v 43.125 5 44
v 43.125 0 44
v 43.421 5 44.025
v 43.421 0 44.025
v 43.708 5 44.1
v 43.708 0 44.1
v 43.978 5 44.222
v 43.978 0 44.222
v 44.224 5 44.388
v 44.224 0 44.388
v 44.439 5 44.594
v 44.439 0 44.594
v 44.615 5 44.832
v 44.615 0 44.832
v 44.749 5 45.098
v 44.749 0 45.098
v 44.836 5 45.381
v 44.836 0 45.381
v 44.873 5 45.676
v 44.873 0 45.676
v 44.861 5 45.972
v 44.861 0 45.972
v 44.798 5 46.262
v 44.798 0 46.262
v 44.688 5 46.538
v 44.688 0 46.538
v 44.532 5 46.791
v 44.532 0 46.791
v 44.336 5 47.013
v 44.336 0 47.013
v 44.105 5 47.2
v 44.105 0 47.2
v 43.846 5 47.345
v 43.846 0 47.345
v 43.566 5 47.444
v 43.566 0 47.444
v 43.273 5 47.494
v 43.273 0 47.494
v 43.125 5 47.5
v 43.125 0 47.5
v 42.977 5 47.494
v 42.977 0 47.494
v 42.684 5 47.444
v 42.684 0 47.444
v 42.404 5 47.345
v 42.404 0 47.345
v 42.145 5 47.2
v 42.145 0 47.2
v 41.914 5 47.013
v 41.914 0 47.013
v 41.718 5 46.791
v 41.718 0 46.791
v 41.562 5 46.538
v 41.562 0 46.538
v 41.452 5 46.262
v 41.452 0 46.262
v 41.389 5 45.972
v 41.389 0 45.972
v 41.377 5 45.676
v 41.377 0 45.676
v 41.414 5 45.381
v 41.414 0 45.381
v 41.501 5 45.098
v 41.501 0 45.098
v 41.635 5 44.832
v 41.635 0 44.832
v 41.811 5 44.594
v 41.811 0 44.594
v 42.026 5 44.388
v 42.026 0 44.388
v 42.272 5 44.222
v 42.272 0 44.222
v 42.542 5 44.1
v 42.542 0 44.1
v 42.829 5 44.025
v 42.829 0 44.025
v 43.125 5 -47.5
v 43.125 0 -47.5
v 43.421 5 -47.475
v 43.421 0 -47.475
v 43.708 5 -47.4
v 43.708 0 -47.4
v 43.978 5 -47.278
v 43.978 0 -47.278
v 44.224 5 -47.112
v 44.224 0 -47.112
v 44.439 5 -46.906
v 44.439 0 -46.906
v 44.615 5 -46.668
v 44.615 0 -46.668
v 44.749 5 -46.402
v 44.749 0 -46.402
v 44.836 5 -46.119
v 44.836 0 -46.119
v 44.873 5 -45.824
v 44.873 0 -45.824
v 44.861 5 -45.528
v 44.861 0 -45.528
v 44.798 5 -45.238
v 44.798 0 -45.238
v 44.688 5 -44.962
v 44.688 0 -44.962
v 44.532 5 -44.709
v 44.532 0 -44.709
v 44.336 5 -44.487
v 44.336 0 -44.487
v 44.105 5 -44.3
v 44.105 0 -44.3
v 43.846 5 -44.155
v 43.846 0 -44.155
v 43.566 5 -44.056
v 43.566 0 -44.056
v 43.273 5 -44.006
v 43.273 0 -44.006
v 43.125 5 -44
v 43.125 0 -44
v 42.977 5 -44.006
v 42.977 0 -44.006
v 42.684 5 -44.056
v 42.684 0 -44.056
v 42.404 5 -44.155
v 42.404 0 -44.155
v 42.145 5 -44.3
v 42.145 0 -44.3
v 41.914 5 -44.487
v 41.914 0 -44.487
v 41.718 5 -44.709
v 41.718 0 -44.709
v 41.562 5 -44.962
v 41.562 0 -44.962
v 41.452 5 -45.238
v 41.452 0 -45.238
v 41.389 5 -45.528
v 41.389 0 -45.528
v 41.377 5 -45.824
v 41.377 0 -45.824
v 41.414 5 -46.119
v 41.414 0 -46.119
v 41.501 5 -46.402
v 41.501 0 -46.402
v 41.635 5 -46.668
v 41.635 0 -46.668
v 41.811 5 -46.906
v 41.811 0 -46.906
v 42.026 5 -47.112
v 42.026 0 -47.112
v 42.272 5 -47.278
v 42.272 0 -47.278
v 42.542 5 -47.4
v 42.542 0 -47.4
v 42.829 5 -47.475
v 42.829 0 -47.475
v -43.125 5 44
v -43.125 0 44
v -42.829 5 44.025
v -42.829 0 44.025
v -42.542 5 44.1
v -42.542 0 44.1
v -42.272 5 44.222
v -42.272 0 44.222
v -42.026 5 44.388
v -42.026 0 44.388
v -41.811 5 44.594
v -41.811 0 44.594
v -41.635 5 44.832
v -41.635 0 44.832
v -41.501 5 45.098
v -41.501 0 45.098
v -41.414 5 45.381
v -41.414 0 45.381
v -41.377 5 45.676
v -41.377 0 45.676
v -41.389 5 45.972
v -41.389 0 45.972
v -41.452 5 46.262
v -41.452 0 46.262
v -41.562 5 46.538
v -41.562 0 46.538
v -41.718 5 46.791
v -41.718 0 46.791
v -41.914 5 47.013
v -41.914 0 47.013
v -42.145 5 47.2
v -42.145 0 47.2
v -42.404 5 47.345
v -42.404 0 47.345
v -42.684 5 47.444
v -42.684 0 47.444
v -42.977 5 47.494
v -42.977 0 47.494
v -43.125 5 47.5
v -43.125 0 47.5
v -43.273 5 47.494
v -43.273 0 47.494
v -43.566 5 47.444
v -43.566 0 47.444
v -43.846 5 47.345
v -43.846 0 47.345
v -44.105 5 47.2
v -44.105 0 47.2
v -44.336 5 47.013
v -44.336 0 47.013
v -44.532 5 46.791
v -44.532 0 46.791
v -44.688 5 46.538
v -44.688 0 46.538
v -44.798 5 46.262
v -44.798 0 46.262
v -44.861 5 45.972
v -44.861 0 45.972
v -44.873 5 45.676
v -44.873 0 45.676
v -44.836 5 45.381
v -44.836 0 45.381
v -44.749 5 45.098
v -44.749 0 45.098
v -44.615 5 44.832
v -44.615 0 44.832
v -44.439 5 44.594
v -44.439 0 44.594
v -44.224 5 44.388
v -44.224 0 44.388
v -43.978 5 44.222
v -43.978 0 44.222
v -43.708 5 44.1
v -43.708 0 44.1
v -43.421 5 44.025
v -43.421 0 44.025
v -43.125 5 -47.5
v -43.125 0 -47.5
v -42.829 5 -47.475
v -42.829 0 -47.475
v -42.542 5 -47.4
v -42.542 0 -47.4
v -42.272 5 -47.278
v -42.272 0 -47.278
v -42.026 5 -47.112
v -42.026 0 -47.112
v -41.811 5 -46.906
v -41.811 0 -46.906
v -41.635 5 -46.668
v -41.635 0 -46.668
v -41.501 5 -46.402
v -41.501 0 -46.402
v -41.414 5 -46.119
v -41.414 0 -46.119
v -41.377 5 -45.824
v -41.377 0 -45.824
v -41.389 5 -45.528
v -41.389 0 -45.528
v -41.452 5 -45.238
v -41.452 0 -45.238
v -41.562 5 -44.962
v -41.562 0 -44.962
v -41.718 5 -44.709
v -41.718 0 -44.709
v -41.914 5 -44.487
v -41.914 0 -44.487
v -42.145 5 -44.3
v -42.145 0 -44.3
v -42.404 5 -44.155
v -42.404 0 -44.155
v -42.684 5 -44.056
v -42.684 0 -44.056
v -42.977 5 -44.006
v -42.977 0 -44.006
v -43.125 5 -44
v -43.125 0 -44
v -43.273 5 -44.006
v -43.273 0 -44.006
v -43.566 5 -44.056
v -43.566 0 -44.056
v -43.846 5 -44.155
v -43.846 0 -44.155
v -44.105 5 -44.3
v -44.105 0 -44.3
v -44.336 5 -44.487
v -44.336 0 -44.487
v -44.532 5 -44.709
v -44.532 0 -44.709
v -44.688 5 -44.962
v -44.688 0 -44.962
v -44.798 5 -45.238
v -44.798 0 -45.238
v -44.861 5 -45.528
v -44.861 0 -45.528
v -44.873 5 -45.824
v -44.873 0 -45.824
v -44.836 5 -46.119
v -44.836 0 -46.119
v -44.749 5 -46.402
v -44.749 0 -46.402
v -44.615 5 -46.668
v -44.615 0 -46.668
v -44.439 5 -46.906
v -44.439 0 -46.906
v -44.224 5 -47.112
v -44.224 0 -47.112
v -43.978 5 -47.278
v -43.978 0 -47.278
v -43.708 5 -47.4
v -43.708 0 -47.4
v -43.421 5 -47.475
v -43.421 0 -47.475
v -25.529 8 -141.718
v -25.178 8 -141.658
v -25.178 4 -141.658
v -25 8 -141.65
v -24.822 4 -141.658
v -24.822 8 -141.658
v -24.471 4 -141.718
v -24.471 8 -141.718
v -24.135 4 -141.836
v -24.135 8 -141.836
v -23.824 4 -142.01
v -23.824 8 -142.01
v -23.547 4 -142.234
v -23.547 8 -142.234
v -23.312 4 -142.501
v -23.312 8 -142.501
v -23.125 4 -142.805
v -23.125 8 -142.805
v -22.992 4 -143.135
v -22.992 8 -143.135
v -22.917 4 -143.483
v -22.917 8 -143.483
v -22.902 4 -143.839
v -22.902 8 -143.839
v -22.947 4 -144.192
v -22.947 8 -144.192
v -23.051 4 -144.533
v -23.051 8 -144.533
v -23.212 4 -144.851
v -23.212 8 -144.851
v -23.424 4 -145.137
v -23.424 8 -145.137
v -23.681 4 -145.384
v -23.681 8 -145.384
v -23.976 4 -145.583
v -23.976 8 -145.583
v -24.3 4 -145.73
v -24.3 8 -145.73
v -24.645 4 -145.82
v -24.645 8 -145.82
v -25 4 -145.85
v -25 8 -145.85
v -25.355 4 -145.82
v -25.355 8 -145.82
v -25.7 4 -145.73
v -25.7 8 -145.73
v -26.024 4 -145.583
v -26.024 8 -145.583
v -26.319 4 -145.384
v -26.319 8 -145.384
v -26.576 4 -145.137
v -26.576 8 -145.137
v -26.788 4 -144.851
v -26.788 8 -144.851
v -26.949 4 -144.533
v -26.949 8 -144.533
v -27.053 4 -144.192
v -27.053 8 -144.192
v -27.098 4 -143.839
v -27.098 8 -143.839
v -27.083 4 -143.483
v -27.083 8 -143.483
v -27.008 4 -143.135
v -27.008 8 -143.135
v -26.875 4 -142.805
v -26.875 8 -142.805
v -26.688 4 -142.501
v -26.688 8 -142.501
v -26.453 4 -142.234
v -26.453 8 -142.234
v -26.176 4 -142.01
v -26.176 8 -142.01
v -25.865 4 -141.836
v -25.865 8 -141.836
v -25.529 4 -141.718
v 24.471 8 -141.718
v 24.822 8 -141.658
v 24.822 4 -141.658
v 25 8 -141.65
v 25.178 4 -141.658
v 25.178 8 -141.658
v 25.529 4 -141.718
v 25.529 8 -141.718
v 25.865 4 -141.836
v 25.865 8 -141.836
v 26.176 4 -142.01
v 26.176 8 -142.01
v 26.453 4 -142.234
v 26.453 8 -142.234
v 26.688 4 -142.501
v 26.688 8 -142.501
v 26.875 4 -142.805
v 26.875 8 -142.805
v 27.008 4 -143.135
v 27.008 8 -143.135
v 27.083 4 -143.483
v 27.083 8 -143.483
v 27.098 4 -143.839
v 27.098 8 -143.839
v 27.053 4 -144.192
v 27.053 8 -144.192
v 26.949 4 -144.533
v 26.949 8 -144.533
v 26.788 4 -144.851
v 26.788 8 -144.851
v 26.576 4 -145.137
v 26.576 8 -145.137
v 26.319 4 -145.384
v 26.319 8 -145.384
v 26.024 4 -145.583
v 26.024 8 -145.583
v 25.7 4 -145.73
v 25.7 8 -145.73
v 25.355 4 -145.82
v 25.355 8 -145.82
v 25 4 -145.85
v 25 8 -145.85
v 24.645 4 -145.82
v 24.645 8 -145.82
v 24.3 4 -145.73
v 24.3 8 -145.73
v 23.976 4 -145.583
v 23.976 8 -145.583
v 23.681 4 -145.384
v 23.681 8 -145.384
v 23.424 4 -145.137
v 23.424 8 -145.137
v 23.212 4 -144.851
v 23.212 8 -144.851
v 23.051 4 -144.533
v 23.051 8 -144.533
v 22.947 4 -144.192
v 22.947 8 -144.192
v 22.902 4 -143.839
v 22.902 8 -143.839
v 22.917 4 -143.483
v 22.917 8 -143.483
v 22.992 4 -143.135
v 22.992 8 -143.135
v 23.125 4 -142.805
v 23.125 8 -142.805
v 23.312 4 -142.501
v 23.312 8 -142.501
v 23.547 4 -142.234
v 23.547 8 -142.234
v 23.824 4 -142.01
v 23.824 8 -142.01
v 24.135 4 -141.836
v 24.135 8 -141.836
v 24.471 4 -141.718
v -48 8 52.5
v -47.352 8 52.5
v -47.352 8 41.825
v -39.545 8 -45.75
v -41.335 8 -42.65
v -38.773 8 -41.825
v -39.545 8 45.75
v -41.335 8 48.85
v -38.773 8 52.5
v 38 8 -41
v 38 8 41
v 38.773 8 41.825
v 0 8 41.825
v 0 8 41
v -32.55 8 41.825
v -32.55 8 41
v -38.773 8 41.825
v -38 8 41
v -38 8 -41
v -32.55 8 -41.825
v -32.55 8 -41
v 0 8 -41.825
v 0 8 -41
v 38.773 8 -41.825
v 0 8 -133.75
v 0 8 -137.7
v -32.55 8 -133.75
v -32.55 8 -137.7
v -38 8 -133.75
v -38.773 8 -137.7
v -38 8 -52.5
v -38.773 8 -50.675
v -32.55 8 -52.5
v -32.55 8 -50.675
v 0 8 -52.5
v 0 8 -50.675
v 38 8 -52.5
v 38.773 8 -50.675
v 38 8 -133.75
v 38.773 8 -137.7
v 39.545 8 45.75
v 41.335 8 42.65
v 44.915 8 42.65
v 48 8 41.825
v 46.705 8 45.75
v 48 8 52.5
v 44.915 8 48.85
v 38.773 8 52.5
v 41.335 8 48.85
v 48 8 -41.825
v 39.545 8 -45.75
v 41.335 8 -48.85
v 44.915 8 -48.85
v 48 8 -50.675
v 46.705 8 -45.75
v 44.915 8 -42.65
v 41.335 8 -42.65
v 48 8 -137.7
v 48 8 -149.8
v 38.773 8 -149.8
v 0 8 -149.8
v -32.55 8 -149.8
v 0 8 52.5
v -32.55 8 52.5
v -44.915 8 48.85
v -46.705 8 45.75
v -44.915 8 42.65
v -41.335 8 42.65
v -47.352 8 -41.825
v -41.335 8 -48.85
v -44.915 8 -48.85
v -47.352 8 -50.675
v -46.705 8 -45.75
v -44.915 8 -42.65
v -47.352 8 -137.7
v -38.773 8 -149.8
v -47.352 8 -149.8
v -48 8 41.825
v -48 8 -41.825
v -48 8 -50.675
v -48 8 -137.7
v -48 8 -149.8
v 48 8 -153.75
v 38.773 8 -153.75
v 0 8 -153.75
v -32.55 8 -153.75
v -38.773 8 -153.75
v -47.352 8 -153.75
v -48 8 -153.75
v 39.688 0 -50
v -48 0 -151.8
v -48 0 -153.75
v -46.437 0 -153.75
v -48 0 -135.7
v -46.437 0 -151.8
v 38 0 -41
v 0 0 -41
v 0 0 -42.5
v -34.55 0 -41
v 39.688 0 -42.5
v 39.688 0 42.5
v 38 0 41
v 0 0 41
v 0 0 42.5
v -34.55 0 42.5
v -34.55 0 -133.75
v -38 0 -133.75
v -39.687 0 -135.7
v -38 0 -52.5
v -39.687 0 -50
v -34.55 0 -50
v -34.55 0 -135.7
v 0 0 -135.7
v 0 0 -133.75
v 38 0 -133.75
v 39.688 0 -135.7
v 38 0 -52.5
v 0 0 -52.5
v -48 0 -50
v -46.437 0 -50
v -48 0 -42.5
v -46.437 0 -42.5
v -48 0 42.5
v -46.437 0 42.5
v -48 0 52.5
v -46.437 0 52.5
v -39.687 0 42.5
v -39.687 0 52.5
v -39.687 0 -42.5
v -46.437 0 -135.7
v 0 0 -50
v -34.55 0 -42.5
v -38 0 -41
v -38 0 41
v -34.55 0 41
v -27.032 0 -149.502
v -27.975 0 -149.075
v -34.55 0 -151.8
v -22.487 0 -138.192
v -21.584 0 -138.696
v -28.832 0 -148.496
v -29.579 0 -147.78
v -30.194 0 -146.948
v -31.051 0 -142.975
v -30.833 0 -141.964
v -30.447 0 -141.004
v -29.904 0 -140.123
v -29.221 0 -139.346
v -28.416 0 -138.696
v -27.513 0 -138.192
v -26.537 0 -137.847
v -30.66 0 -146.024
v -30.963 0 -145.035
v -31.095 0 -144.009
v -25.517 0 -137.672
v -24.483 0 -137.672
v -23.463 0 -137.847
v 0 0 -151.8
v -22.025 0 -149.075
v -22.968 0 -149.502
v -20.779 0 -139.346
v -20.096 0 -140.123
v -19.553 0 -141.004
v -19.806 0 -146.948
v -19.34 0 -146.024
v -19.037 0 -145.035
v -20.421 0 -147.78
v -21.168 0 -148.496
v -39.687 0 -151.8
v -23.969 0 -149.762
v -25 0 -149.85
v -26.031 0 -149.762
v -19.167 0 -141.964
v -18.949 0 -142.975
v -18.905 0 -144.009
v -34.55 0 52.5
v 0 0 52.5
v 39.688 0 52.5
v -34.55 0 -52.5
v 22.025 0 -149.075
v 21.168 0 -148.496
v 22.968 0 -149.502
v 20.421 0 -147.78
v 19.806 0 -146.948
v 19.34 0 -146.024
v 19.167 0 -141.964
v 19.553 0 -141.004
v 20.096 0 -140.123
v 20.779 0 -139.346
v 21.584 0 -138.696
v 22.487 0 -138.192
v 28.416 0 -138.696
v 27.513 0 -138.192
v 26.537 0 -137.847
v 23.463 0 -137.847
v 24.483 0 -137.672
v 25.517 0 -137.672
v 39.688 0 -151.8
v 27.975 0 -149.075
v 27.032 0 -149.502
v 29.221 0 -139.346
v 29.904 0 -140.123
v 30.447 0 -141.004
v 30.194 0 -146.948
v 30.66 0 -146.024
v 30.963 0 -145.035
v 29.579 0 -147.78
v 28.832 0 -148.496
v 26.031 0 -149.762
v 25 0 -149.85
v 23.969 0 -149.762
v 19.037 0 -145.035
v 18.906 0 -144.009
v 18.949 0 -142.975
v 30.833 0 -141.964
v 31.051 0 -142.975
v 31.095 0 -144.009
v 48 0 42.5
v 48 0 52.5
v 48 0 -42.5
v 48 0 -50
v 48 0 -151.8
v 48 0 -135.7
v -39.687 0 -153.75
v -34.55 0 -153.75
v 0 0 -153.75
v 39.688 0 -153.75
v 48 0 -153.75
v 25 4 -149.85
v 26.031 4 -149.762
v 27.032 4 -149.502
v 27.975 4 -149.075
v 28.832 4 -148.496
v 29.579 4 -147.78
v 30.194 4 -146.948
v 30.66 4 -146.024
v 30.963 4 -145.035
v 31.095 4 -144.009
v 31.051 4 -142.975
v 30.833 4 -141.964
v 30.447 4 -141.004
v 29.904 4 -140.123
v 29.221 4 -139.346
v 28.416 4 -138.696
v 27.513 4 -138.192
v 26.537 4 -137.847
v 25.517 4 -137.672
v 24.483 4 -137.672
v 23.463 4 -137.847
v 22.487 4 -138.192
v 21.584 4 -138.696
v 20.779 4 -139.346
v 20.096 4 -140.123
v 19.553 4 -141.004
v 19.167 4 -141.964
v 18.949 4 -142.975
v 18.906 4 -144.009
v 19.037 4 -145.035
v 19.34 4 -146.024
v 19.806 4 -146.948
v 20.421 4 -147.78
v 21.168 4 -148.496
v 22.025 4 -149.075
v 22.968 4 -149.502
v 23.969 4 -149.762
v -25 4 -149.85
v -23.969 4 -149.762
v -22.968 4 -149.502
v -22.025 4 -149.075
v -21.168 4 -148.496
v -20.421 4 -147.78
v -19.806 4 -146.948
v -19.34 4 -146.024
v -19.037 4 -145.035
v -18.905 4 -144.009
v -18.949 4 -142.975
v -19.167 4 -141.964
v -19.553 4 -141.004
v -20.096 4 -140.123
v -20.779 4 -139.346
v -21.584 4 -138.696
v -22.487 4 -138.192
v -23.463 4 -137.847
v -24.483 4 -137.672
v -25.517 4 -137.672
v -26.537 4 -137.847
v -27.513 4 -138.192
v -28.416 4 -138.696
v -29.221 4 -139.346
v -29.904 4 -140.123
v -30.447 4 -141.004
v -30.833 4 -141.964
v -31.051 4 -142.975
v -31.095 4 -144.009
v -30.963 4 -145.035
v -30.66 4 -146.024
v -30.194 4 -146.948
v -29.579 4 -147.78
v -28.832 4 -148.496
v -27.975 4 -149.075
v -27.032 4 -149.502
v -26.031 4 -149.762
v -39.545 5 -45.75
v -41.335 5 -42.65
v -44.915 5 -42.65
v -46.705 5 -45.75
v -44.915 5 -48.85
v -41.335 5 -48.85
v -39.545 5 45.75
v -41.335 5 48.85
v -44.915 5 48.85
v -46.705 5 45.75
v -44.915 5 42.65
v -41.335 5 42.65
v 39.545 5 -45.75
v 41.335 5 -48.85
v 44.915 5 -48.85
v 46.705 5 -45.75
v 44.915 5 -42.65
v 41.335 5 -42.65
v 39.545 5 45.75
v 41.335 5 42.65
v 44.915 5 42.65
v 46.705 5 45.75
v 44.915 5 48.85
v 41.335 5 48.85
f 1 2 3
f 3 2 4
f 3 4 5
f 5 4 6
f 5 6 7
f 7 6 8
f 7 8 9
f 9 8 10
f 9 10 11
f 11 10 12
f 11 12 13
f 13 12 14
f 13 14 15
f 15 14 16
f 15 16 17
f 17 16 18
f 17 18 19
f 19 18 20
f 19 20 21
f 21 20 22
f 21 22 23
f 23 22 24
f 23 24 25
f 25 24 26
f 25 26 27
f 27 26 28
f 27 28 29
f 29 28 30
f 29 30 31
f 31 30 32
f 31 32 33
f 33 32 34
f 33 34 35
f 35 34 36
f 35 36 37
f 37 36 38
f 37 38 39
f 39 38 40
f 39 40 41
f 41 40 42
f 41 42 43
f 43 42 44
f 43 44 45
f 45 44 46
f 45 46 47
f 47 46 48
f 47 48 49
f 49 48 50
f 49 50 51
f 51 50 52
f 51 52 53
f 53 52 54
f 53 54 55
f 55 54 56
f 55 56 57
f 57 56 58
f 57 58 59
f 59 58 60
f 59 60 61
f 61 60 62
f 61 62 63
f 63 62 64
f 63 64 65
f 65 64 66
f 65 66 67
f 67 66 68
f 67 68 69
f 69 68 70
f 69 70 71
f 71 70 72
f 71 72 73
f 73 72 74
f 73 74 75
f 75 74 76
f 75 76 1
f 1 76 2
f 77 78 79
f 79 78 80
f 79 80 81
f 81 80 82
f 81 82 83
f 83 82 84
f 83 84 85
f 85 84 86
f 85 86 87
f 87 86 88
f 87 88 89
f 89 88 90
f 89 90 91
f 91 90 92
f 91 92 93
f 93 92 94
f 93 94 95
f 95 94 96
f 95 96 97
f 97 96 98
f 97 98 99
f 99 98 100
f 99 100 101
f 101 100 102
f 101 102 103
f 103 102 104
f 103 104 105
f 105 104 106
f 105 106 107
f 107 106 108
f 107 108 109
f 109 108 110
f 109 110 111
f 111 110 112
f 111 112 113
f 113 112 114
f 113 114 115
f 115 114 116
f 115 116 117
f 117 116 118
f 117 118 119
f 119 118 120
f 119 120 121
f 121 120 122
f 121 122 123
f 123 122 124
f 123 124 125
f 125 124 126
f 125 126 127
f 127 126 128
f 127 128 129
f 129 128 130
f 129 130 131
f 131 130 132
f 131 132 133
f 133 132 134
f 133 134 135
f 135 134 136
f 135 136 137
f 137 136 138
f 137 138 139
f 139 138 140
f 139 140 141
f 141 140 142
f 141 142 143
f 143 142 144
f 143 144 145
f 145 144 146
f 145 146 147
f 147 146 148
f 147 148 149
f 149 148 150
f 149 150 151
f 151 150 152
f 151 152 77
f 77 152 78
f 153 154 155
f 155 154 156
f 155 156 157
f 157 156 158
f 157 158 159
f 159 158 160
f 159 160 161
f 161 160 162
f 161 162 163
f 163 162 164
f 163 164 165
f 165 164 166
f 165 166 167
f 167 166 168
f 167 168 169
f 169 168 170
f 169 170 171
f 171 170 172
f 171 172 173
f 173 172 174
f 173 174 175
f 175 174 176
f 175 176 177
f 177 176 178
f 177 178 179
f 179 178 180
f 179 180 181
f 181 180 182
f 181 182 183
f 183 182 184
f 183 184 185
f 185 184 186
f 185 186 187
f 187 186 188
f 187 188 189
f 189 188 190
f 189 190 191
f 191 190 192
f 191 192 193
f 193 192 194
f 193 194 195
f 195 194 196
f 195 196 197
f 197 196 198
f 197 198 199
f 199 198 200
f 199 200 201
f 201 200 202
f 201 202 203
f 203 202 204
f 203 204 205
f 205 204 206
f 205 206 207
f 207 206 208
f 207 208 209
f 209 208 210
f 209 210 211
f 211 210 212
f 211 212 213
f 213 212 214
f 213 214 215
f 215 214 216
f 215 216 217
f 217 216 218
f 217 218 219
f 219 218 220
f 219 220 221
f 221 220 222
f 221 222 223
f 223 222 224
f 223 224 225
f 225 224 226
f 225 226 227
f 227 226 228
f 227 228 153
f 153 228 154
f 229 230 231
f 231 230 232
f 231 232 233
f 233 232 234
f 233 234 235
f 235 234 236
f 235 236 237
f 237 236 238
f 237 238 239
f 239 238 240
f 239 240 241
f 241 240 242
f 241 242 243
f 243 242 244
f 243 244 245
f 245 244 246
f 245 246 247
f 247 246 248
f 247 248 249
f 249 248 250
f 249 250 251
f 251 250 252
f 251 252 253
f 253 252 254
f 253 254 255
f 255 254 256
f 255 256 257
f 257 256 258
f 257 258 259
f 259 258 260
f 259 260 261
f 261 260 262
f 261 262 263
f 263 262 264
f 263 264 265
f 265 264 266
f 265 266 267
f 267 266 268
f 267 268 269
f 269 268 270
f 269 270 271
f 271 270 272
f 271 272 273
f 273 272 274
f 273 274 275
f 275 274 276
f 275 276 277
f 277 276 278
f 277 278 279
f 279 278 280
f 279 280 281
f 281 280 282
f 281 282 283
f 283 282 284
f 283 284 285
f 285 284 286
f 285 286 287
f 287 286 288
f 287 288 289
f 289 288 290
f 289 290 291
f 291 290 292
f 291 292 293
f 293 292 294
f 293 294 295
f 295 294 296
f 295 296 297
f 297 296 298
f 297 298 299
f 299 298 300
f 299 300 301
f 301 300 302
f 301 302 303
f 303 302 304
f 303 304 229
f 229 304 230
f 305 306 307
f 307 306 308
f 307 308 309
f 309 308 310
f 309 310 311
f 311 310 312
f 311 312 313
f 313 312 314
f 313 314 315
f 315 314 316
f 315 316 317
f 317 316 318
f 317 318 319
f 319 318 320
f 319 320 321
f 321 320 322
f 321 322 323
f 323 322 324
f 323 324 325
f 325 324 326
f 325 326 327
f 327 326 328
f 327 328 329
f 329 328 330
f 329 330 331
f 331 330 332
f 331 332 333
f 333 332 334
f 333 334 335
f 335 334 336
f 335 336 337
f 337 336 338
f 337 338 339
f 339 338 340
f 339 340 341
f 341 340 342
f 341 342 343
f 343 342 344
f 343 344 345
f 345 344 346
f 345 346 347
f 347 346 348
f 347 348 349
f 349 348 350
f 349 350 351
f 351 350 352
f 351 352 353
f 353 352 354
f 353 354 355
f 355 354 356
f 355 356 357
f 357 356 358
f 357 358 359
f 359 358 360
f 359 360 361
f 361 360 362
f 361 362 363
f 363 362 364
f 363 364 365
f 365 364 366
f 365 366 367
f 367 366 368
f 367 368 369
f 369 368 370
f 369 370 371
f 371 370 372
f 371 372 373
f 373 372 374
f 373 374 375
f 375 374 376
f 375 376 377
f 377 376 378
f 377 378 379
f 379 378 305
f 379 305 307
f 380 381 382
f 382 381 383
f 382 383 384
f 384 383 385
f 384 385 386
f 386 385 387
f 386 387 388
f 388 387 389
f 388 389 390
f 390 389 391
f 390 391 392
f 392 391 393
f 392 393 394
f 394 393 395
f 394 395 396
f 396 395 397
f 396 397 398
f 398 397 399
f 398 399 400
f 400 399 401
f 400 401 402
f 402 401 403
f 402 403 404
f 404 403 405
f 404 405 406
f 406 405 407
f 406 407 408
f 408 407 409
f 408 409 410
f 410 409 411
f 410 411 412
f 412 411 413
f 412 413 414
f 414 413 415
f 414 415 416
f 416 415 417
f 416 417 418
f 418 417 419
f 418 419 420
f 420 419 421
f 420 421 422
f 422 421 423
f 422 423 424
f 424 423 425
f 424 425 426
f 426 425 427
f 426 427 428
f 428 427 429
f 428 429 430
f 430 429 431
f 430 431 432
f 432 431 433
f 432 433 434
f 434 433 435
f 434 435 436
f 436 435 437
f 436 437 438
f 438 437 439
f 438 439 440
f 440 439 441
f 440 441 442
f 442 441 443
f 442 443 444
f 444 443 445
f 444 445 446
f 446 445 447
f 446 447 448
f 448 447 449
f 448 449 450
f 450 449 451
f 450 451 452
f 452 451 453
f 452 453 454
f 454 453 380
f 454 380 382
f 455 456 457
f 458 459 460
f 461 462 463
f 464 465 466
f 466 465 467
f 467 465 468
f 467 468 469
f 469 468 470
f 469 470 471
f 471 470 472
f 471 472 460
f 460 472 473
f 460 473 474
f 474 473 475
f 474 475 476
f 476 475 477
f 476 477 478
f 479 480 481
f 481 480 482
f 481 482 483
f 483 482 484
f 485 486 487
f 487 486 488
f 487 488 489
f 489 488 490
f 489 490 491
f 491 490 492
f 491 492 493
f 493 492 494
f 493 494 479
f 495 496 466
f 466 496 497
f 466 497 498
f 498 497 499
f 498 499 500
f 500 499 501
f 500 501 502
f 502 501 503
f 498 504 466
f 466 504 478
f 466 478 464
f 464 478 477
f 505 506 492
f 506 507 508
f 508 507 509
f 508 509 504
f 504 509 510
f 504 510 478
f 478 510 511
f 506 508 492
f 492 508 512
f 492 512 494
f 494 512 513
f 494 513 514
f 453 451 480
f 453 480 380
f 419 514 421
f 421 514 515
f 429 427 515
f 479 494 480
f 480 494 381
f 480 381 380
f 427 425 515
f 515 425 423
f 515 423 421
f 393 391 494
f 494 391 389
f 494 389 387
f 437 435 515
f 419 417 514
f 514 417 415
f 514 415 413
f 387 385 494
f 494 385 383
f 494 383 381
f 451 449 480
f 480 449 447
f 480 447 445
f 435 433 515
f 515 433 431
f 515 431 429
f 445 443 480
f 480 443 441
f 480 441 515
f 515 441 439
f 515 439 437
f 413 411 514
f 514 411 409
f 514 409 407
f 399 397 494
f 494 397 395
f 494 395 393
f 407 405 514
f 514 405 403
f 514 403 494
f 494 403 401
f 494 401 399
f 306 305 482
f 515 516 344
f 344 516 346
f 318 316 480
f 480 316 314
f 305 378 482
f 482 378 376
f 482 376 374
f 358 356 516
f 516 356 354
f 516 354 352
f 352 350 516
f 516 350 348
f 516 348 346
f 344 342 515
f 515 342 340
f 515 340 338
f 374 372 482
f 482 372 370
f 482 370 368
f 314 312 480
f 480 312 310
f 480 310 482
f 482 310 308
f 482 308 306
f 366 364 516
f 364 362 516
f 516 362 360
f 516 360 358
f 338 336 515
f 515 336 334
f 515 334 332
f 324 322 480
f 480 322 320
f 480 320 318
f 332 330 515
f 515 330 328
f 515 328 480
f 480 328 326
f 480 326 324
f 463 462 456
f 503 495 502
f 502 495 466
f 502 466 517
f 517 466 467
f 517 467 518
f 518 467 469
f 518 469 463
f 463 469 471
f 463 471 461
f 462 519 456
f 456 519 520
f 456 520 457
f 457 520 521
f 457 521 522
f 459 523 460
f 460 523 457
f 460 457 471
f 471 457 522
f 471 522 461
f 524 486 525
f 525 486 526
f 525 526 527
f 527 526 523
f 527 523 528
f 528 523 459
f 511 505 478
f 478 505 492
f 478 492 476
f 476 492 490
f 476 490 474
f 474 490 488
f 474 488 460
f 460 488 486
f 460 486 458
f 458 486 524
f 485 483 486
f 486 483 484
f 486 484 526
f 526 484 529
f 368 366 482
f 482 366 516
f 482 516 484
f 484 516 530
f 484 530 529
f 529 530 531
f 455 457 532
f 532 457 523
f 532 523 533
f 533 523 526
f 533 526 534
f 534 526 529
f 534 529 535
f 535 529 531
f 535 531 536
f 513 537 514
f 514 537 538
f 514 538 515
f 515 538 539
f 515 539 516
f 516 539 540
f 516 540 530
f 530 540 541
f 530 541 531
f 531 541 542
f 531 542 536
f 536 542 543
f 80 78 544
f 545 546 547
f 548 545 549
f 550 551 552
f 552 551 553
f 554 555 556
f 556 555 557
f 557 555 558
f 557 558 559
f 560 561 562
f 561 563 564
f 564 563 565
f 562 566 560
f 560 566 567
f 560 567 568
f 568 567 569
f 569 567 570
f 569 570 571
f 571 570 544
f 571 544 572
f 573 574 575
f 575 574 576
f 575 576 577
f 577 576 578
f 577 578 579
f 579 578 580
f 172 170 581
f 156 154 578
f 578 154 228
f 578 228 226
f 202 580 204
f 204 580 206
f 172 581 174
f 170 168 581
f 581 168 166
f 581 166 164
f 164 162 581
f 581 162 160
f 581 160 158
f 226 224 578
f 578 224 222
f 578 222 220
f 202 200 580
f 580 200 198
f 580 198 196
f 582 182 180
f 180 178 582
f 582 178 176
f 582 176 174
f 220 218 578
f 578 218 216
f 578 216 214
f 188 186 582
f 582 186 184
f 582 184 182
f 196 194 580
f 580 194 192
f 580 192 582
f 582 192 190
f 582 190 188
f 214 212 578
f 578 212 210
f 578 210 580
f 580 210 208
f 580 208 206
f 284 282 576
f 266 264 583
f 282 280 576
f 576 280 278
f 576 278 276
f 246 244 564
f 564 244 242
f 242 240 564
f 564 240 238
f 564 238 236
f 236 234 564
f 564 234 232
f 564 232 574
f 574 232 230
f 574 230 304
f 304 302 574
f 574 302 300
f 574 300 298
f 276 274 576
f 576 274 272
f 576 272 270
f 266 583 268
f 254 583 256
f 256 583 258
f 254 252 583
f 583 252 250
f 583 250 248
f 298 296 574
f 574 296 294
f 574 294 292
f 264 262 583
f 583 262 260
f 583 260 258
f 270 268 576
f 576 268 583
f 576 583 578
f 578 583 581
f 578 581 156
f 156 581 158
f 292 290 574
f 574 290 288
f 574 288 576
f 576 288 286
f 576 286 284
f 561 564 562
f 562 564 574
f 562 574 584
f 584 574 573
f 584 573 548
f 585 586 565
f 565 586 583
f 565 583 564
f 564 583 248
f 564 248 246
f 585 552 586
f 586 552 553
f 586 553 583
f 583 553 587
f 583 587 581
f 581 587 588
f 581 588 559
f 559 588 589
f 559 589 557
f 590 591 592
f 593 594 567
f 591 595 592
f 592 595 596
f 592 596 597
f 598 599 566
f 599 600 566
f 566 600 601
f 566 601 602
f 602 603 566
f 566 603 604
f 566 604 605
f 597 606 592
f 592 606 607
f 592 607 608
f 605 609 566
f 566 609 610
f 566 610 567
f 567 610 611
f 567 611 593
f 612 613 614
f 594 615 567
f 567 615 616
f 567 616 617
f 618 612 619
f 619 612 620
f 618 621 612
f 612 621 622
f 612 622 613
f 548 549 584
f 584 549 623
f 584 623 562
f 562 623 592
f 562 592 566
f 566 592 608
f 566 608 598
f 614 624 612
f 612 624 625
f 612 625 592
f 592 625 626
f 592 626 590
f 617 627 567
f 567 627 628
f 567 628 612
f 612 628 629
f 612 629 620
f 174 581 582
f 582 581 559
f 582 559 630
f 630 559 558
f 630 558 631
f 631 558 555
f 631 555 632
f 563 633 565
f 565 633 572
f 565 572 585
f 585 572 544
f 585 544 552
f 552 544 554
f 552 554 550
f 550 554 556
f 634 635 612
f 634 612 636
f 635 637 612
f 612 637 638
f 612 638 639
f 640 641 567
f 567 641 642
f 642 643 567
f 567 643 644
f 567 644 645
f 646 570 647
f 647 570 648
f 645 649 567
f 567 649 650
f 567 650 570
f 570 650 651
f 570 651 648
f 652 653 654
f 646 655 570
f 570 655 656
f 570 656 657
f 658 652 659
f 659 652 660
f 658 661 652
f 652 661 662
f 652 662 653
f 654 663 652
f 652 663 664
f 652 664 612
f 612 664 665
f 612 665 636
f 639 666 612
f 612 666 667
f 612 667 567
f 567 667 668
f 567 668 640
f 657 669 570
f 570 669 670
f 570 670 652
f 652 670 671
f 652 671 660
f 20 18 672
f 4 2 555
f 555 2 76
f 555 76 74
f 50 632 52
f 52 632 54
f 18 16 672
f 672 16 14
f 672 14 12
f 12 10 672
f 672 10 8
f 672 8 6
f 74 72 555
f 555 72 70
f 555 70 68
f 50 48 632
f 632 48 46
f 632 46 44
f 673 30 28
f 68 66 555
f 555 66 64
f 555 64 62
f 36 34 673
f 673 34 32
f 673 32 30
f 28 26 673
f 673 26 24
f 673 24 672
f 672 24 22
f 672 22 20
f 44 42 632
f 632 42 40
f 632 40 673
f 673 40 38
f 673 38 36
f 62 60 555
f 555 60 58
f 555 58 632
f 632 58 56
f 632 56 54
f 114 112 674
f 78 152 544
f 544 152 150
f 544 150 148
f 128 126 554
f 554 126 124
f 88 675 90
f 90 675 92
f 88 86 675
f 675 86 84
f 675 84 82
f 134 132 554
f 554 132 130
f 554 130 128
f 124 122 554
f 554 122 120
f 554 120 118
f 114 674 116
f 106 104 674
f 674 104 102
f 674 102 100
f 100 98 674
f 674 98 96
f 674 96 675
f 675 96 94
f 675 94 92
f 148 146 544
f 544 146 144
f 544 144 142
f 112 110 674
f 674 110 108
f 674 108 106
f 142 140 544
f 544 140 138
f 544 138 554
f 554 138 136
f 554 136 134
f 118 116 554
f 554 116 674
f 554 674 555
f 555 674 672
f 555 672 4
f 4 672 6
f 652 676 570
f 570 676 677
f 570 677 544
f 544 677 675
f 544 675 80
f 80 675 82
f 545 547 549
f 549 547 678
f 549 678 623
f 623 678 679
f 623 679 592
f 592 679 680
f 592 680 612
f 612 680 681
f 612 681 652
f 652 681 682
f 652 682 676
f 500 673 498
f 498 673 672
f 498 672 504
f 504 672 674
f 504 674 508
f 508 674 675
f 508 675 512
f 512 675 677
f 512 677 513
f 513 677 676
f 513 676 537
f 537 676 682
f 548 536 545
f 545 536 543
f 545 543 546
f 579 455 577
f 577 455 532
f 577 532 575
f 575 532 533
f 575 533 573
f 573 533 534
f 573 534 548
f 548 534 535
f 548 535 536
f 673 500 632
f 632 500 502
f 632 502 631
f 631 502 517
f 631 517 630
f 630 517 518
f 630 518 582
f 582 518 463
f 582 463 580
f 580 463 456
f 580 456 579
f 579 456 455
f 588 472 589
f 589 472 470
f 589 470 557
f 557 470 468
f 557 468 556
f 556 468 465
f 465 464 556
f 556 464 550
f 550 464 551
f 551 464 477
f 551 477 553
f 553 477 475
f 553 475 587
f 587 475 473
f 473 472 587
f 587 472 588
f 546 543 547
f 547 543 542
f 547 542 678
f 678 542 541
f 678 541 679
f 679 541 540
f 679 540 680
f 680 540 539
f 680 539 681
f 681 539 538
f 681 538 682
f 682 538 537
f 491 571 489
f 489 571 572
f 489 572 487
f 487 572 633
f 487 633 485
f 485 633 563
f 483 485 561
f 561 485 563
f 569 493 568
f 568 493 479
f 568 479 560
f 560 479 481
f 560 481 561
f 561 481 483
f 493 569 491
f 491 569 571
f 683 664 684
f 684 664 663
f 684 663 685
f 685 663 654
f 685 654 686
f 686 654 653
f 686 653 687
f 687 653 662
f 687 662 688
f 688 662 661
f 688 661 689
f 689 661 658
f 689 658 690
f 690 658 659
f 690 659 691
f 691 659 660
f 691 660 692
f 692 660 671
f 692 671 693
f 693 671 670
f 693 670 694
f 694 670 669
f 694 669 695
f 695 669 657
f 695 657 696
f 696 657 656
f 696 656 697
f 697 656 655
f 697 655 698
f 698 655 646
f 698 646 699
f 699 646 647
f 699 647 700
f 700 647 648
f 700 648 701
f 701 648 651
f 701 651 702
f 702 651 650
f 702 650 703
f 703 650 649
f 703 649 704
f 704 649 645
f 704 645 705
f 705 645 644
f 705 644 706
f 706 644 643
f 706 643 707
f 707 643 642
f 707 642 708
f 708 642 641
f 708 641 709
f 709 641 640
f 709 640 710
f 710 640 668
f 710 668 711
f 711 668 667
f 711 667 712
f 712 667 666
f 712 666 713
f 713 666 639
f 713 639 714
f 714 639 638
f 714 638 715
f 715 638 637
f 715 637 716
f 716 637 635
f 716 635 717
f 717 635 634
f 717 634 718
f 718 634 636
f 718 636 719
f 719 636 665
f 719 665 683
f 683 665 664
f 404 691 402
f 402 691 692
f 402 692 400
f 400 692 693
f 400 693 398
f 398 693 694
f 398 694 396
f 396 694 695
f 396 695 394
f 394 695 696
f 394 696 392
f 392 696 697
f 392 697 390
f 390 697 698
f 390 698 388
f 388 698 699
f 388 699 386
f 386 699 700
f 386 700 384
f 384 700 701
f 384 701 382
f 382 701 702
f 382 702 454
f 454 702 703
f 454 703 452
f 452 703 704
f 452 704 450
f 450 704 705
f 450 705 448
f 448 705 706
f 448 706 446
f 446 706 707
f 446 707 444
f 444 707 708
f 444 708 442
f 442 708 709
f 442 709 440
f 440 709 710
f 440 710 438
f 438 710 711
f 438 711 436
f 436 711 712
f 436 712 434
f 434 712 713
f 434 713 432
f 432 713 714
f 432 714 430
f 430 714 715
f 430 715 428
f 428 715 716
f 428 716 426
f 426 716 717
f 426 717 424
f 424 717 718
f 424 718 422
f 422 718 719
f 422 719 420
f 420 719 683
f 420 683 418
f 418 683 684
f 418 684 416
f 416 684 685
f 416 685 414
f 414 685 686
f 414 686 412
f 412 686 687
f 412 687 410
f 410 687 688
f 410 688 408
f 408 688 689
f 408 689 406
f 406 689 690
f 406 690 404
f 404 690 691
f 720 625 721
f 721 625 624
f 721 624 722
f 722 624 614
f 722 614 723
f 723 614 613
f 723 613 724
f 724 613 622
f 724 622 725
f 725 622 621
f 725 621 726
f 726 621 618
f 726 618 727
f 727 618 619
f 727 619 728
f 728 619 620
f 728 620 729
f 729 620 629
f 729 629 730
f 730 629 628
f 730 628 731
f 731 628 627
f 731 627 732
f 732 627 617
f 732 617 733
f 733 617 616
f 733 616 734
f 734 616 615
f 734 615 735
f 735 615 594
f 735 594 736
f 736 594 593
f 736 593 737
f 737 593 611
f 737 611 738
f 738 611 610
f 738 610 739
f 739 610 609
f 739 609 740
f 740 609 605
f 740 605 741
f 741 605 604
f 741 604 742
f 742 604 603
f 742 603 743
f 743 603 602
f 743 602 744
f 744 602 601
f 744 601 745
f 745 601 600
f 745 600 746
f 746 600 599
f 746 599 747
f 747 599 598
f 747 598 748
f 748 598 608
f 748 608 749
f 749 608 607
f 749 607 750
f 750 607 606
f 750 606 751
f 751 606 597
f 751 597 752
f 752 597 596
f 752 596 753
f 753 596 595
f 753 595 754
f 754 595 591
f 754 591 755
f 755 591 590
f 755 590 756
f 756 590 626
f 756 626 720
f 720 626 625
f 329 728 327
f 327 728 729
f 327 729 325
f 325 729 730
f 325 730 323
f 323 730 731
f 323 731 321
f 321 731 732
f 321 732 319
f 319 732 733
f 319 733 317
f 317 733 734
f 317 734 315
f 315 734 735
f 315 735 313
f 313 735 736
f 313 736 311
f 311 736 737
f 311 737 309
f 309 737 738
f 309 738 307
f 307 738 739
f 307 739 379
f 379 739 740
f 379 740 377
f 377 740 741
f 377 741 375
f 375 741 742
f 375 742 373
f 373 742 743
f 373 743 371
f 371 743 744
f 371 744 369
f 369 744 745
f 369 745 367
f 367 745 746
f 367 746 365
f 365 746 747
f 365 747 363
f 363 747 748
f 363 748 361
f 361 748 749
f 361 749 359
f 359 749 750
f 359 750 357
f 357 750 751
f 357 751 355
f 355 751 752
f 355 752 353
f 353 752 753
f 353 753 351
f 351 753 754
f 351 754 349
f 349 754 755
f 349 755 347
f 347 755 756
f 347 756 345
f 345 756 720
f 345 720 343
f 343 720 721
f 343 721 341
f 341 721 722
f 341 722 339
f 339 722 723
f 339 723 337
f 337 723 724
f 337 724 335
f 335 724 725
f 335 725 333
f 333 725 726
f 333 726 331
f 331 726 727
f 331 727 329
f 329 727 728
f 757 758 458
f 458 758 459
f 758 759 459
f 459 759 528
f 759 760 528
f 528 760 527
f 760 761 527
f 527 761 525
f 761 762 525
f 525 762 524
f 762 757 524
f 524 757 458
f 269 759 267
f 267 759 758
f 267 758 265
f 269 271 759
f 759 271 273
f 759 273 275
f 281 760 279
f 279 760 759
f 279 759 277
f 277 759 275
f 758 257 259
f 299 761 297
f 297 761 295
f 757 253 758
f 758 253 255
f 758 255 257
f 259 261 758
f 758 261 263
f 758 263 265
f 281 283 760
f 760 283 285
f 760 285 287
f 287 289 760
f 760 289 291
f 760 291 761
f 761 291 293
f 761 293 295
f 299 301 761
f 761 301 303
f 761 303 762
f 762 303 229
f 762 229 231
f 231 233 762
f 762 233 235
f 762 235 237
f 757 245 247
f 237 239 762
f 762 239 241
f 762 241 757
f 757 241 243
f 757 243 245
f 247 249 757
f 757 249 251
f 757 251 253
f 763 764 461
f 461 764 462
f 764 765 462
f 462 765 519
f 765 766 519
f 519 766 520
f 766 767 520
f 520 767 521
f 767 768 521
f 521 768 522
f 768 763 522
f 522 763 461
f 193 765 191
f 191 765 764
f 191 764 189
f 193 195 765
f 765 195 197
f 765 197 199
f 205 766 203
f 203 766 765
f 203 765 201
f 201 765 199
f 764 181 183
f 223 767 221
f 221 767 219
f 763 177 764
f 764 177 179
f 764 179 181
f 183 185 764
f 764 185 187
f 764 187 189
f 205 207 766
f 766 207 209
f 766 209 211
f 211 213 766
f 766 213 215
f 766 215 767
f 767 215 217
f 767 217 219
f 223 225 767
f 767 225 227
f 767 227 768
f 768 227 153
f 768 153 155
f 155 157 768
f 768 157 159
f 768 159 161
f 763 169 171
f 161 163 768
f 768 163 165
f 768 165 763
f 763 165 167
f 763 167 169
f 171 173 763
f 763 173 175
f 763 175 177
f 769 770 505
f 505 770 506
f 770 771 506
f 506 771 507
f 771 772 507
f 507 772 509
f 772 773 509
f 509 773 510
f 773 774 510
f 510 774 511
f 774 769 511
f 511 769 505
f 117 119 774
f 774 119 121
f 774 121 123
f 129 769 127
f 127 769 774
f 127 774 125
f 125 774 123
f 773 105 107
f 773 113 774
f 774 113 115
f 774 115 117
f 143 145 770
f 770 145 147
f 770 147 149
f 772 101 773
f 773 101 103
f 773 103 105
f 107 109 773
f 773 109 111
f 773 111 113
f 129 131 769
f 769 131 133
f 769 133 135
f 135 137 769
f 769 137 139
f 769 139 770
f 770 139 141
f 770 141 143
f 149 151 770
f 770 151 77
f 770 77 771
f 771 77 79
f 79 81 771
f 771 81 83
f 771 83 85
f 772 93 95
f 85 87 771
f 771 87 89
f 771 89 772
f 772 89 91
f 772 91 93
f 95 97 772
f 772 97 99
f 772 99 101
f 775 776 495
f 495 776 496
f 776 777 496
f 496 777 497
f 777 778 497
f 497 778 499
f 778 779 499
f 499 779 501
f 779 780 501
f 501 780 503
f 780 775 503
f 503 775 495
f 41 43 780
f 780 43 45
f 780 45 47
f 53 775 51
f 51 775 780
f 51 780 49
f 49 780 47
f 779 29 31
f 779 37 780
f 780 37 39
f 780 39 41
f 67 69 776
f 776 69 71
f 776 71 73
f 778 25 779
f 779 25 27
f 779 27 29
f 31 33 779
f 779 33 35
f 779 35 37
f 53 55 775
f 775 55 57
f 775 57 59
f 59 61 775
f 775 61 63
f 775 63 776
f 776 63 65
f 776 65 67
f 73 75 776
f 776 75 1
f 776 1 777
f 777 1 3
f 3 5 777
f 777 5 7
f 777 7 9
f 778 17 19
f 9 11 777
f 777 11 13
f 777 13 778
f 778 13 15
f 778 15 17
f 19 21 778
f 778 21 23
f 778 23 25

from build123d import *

# Parameters (mm, degrees)
SKETCH_1_W               = 96
SKETCH_1_H               = 105
SKETCH_1_R               = 1.75
SKETCH_1_W_2             = 76
SKETCH_1_H_2             = 82
EXTRUDE_1_DEPTH          = 8
SKETCH_1_11_R            = 1.75
SKETCH_1_11_W            = 76
SKETCH_1_11_H            = 82
SKETCH_1_11_R_2          = 2.1
SKETCH_1_11_H_2          = 81.25
EXTRUDE_5_DEPTH          = 8
CUT_EXTRUDE_4_DEPTH      = 162.267053362
CUT_EXTRUDE_4_DEPTH_BACK = 162.267053362
SKETCH_1_12_W            = 76
SKETCH_1_12_H            = 81.25
SKETCH_3_R               = 6.1
CUT_EXTRUDE_5_DEPTH      = 4
CUT_EXTRUDE_6_DEPTH      = 3


with BuildPart() as part:
    # Эскиз1 → Бобышка-Вытянуть1 (new body)
    with BuildSketch(Plane(origin=(0, 0, 0), x_dir=(1, 0, 0), z_dir=(0, 1, 0))):
        Rectangle(SKETCH_1_W, SKETCH_1_H)
        with Locations(Location((-43.125, 45.75, 0), (0, 0, 270))):
            Circle(SKETCH_1_R, mode=Mode.SUBTRACT)
        with Locations(Location((43.125, 45.75, 0), (0, 0, 270))):
            Circle(SKETCH_1_R, mode=Mode.SUBTRACT)
        with Locations(Location((43.125, -45.75, 0), (0, 0, 270))):
            Circle(SKETCH_1_R, mode=Mode.SUBTRACT)
        with Locations(Location((-43.125, -45.75, 0), (0, 0, 270))):
            Circle(SKETCH_1_R, mode=Mode.SUBTRACT)
        Rectangle(SKETCH_1_W_2, SKETCH_1_H_2, mode=Mode.SUBTRACT)
    extrude(amount=EXTRUDE_1_DEPTH)

    # Эскиз1<11> → Бобышка-Вытянуть5 (add)
    # profile 1 of 3: a face of its own
    with BuildSketch(Plane(origin=(0, 0, 0), x_dir=(1, 0, 0), z_dir=(0, 1, 0))):
        Polygon((-48, -52.5), (48, -52.5), (48, 52.5), (38, 52.5), (-38, 52.5), (-48, 52.5), align=None)
        with Locations(Location((-43.125, -45.75, 0), (0, 0, 270))):
            Circle(SKETCH_1_11_R, mode=Mode.SUBTRACT)
        with Locations(Location((-43.125, 45.75, 0), (0, 0, 270))):
            Circle(SKETCH_1_11_R, mode=Mode.SUBTRACT)
        with Locations(Location((43.125, -45.75, 0), (0, 0, 270))):
            Circle(SKETCH_1_11_R, mode=Mode.SUBTRACT)
        Rectangle(SKETCH_1_11_W, SKETCH_1_11_H, mode=Mode.SUBTRACT)
        with Locations(Location((43.125, 45.75, 0), (0, 0, 270))):
            Circle(SKETCH_1_11_R, mode=Mode.SUBTRACT)
    # profile 2 of 3: a face of its own
    with BuildSketch(Plane(origin=(0, 0, 0), x_dir=(1, 0, 0), z_dir=(0, 1, 0))):
        Polygon((38, 52.5), (48, 52.5), (48, 153.75), (-48, 153.75), (-48, 52.5), (-38, 52.5), (-38, 133.75), (38, 133.75), align=None)
        with Locations(Location((-25, 143.75, 0), (0, 0, 270))):
            Circle(SKETCH_1_11_R_2, mode=Mode.SUBTRACT)
        with Locations(Location((25, 143.75, 0), (0, 0, 270))):
            Circle(SKETCH_1_11_R_2, mode=Mode.SUBTRACT)
    # profile 3 of 3: a face of its own
    with BuildSketch(Plane(origin=(0, 0, 0), x_dir=(1, 0, 0), z_dir=(0, 1, 0))):
        with Locations((0, 93.125)):
            Rectangle(SKETCH_1_11_W, SKETCH_1_11_H_2)
    extrude(amount=EXTRUDE_5_DEPTH)

    # Эскиз1<12> → Вырез-Вытянуть4 (cut, two sides: drawn at the far end of the back side and taken through both)
    with BuildSketch(Plane(origin=(0, 0, 0), x_dir=(1, 0, 0), z_dir=(0, 1, 0)).offset(-CUT_EXTRUDE_4_DEPTH_BACK)):
        with Locations((0, 93.125)):
            Rectangle(SKETCH_1_12_W, SKETCH_1_12_H)
    extrude(amount=CUT_EXTRUDE_4_DEPTH + CUT_EXTRUDE_4_DEPTH_BACK, mode=Mode.SUBTRACT)

    # Эскиз3 → Вырез-Вытянуть5 (cut)
    with BuildSketch(Plane.XZ):
        with Locations(Location((-25, -143.75, 0), (0, 0, 270))):
            Circle(SKETCH_3_R)
        with Locations(Location((25, -143.75, 0), (0, 0, 270))):
            Circle(SKETCH_3_R)
    extrude(amount=-CUT_EXTRUDE_5_DEPTH, mode=Mode.SUBTRACT)

    # Эскиз4 → Вырез-Вытянуть6 (cut)
    with BuildSketch(Plane(origin=(0, 8, 0), x_dir=(1, 0, 0), z_dir=(0, 1, 0))):
        Polygon((-39.545428331, 45.75), (-41.335214166, 48.85), (-44.914785834, 48.85), (-46.704571669, 45.75), (-44.914785834, 42.65), (-41.335214166, 42.65), align=None)
        Polygon((39.545428331, 45.75), (41.335214166, 42.65), (44.914785834, 42.65), (46.704571669, 45.75), (44.914785834, 48.85), (41.335214166, 48.85), align=None)
        Polygon((39.545428331, -45.75), (41.335214166, -48.85), (44.914785834, -48.85), (46.704571669, -45.75), (44.914785834, -42.65), (41.335214166, -42.65), align=None)
        Polygon((-39.545428331, -45.75), (-41.335214166, -42.65), (-44.914785834, -42.65), (-46.704571669, -45.75), (-44.914785834, -48.85), (-41.335214166, -48.85), align=None)
    extrude(amount=-CUT_EXTRUDE_6_DEPTH, mode=Mode.SUBTRACT)


solid = part.part
